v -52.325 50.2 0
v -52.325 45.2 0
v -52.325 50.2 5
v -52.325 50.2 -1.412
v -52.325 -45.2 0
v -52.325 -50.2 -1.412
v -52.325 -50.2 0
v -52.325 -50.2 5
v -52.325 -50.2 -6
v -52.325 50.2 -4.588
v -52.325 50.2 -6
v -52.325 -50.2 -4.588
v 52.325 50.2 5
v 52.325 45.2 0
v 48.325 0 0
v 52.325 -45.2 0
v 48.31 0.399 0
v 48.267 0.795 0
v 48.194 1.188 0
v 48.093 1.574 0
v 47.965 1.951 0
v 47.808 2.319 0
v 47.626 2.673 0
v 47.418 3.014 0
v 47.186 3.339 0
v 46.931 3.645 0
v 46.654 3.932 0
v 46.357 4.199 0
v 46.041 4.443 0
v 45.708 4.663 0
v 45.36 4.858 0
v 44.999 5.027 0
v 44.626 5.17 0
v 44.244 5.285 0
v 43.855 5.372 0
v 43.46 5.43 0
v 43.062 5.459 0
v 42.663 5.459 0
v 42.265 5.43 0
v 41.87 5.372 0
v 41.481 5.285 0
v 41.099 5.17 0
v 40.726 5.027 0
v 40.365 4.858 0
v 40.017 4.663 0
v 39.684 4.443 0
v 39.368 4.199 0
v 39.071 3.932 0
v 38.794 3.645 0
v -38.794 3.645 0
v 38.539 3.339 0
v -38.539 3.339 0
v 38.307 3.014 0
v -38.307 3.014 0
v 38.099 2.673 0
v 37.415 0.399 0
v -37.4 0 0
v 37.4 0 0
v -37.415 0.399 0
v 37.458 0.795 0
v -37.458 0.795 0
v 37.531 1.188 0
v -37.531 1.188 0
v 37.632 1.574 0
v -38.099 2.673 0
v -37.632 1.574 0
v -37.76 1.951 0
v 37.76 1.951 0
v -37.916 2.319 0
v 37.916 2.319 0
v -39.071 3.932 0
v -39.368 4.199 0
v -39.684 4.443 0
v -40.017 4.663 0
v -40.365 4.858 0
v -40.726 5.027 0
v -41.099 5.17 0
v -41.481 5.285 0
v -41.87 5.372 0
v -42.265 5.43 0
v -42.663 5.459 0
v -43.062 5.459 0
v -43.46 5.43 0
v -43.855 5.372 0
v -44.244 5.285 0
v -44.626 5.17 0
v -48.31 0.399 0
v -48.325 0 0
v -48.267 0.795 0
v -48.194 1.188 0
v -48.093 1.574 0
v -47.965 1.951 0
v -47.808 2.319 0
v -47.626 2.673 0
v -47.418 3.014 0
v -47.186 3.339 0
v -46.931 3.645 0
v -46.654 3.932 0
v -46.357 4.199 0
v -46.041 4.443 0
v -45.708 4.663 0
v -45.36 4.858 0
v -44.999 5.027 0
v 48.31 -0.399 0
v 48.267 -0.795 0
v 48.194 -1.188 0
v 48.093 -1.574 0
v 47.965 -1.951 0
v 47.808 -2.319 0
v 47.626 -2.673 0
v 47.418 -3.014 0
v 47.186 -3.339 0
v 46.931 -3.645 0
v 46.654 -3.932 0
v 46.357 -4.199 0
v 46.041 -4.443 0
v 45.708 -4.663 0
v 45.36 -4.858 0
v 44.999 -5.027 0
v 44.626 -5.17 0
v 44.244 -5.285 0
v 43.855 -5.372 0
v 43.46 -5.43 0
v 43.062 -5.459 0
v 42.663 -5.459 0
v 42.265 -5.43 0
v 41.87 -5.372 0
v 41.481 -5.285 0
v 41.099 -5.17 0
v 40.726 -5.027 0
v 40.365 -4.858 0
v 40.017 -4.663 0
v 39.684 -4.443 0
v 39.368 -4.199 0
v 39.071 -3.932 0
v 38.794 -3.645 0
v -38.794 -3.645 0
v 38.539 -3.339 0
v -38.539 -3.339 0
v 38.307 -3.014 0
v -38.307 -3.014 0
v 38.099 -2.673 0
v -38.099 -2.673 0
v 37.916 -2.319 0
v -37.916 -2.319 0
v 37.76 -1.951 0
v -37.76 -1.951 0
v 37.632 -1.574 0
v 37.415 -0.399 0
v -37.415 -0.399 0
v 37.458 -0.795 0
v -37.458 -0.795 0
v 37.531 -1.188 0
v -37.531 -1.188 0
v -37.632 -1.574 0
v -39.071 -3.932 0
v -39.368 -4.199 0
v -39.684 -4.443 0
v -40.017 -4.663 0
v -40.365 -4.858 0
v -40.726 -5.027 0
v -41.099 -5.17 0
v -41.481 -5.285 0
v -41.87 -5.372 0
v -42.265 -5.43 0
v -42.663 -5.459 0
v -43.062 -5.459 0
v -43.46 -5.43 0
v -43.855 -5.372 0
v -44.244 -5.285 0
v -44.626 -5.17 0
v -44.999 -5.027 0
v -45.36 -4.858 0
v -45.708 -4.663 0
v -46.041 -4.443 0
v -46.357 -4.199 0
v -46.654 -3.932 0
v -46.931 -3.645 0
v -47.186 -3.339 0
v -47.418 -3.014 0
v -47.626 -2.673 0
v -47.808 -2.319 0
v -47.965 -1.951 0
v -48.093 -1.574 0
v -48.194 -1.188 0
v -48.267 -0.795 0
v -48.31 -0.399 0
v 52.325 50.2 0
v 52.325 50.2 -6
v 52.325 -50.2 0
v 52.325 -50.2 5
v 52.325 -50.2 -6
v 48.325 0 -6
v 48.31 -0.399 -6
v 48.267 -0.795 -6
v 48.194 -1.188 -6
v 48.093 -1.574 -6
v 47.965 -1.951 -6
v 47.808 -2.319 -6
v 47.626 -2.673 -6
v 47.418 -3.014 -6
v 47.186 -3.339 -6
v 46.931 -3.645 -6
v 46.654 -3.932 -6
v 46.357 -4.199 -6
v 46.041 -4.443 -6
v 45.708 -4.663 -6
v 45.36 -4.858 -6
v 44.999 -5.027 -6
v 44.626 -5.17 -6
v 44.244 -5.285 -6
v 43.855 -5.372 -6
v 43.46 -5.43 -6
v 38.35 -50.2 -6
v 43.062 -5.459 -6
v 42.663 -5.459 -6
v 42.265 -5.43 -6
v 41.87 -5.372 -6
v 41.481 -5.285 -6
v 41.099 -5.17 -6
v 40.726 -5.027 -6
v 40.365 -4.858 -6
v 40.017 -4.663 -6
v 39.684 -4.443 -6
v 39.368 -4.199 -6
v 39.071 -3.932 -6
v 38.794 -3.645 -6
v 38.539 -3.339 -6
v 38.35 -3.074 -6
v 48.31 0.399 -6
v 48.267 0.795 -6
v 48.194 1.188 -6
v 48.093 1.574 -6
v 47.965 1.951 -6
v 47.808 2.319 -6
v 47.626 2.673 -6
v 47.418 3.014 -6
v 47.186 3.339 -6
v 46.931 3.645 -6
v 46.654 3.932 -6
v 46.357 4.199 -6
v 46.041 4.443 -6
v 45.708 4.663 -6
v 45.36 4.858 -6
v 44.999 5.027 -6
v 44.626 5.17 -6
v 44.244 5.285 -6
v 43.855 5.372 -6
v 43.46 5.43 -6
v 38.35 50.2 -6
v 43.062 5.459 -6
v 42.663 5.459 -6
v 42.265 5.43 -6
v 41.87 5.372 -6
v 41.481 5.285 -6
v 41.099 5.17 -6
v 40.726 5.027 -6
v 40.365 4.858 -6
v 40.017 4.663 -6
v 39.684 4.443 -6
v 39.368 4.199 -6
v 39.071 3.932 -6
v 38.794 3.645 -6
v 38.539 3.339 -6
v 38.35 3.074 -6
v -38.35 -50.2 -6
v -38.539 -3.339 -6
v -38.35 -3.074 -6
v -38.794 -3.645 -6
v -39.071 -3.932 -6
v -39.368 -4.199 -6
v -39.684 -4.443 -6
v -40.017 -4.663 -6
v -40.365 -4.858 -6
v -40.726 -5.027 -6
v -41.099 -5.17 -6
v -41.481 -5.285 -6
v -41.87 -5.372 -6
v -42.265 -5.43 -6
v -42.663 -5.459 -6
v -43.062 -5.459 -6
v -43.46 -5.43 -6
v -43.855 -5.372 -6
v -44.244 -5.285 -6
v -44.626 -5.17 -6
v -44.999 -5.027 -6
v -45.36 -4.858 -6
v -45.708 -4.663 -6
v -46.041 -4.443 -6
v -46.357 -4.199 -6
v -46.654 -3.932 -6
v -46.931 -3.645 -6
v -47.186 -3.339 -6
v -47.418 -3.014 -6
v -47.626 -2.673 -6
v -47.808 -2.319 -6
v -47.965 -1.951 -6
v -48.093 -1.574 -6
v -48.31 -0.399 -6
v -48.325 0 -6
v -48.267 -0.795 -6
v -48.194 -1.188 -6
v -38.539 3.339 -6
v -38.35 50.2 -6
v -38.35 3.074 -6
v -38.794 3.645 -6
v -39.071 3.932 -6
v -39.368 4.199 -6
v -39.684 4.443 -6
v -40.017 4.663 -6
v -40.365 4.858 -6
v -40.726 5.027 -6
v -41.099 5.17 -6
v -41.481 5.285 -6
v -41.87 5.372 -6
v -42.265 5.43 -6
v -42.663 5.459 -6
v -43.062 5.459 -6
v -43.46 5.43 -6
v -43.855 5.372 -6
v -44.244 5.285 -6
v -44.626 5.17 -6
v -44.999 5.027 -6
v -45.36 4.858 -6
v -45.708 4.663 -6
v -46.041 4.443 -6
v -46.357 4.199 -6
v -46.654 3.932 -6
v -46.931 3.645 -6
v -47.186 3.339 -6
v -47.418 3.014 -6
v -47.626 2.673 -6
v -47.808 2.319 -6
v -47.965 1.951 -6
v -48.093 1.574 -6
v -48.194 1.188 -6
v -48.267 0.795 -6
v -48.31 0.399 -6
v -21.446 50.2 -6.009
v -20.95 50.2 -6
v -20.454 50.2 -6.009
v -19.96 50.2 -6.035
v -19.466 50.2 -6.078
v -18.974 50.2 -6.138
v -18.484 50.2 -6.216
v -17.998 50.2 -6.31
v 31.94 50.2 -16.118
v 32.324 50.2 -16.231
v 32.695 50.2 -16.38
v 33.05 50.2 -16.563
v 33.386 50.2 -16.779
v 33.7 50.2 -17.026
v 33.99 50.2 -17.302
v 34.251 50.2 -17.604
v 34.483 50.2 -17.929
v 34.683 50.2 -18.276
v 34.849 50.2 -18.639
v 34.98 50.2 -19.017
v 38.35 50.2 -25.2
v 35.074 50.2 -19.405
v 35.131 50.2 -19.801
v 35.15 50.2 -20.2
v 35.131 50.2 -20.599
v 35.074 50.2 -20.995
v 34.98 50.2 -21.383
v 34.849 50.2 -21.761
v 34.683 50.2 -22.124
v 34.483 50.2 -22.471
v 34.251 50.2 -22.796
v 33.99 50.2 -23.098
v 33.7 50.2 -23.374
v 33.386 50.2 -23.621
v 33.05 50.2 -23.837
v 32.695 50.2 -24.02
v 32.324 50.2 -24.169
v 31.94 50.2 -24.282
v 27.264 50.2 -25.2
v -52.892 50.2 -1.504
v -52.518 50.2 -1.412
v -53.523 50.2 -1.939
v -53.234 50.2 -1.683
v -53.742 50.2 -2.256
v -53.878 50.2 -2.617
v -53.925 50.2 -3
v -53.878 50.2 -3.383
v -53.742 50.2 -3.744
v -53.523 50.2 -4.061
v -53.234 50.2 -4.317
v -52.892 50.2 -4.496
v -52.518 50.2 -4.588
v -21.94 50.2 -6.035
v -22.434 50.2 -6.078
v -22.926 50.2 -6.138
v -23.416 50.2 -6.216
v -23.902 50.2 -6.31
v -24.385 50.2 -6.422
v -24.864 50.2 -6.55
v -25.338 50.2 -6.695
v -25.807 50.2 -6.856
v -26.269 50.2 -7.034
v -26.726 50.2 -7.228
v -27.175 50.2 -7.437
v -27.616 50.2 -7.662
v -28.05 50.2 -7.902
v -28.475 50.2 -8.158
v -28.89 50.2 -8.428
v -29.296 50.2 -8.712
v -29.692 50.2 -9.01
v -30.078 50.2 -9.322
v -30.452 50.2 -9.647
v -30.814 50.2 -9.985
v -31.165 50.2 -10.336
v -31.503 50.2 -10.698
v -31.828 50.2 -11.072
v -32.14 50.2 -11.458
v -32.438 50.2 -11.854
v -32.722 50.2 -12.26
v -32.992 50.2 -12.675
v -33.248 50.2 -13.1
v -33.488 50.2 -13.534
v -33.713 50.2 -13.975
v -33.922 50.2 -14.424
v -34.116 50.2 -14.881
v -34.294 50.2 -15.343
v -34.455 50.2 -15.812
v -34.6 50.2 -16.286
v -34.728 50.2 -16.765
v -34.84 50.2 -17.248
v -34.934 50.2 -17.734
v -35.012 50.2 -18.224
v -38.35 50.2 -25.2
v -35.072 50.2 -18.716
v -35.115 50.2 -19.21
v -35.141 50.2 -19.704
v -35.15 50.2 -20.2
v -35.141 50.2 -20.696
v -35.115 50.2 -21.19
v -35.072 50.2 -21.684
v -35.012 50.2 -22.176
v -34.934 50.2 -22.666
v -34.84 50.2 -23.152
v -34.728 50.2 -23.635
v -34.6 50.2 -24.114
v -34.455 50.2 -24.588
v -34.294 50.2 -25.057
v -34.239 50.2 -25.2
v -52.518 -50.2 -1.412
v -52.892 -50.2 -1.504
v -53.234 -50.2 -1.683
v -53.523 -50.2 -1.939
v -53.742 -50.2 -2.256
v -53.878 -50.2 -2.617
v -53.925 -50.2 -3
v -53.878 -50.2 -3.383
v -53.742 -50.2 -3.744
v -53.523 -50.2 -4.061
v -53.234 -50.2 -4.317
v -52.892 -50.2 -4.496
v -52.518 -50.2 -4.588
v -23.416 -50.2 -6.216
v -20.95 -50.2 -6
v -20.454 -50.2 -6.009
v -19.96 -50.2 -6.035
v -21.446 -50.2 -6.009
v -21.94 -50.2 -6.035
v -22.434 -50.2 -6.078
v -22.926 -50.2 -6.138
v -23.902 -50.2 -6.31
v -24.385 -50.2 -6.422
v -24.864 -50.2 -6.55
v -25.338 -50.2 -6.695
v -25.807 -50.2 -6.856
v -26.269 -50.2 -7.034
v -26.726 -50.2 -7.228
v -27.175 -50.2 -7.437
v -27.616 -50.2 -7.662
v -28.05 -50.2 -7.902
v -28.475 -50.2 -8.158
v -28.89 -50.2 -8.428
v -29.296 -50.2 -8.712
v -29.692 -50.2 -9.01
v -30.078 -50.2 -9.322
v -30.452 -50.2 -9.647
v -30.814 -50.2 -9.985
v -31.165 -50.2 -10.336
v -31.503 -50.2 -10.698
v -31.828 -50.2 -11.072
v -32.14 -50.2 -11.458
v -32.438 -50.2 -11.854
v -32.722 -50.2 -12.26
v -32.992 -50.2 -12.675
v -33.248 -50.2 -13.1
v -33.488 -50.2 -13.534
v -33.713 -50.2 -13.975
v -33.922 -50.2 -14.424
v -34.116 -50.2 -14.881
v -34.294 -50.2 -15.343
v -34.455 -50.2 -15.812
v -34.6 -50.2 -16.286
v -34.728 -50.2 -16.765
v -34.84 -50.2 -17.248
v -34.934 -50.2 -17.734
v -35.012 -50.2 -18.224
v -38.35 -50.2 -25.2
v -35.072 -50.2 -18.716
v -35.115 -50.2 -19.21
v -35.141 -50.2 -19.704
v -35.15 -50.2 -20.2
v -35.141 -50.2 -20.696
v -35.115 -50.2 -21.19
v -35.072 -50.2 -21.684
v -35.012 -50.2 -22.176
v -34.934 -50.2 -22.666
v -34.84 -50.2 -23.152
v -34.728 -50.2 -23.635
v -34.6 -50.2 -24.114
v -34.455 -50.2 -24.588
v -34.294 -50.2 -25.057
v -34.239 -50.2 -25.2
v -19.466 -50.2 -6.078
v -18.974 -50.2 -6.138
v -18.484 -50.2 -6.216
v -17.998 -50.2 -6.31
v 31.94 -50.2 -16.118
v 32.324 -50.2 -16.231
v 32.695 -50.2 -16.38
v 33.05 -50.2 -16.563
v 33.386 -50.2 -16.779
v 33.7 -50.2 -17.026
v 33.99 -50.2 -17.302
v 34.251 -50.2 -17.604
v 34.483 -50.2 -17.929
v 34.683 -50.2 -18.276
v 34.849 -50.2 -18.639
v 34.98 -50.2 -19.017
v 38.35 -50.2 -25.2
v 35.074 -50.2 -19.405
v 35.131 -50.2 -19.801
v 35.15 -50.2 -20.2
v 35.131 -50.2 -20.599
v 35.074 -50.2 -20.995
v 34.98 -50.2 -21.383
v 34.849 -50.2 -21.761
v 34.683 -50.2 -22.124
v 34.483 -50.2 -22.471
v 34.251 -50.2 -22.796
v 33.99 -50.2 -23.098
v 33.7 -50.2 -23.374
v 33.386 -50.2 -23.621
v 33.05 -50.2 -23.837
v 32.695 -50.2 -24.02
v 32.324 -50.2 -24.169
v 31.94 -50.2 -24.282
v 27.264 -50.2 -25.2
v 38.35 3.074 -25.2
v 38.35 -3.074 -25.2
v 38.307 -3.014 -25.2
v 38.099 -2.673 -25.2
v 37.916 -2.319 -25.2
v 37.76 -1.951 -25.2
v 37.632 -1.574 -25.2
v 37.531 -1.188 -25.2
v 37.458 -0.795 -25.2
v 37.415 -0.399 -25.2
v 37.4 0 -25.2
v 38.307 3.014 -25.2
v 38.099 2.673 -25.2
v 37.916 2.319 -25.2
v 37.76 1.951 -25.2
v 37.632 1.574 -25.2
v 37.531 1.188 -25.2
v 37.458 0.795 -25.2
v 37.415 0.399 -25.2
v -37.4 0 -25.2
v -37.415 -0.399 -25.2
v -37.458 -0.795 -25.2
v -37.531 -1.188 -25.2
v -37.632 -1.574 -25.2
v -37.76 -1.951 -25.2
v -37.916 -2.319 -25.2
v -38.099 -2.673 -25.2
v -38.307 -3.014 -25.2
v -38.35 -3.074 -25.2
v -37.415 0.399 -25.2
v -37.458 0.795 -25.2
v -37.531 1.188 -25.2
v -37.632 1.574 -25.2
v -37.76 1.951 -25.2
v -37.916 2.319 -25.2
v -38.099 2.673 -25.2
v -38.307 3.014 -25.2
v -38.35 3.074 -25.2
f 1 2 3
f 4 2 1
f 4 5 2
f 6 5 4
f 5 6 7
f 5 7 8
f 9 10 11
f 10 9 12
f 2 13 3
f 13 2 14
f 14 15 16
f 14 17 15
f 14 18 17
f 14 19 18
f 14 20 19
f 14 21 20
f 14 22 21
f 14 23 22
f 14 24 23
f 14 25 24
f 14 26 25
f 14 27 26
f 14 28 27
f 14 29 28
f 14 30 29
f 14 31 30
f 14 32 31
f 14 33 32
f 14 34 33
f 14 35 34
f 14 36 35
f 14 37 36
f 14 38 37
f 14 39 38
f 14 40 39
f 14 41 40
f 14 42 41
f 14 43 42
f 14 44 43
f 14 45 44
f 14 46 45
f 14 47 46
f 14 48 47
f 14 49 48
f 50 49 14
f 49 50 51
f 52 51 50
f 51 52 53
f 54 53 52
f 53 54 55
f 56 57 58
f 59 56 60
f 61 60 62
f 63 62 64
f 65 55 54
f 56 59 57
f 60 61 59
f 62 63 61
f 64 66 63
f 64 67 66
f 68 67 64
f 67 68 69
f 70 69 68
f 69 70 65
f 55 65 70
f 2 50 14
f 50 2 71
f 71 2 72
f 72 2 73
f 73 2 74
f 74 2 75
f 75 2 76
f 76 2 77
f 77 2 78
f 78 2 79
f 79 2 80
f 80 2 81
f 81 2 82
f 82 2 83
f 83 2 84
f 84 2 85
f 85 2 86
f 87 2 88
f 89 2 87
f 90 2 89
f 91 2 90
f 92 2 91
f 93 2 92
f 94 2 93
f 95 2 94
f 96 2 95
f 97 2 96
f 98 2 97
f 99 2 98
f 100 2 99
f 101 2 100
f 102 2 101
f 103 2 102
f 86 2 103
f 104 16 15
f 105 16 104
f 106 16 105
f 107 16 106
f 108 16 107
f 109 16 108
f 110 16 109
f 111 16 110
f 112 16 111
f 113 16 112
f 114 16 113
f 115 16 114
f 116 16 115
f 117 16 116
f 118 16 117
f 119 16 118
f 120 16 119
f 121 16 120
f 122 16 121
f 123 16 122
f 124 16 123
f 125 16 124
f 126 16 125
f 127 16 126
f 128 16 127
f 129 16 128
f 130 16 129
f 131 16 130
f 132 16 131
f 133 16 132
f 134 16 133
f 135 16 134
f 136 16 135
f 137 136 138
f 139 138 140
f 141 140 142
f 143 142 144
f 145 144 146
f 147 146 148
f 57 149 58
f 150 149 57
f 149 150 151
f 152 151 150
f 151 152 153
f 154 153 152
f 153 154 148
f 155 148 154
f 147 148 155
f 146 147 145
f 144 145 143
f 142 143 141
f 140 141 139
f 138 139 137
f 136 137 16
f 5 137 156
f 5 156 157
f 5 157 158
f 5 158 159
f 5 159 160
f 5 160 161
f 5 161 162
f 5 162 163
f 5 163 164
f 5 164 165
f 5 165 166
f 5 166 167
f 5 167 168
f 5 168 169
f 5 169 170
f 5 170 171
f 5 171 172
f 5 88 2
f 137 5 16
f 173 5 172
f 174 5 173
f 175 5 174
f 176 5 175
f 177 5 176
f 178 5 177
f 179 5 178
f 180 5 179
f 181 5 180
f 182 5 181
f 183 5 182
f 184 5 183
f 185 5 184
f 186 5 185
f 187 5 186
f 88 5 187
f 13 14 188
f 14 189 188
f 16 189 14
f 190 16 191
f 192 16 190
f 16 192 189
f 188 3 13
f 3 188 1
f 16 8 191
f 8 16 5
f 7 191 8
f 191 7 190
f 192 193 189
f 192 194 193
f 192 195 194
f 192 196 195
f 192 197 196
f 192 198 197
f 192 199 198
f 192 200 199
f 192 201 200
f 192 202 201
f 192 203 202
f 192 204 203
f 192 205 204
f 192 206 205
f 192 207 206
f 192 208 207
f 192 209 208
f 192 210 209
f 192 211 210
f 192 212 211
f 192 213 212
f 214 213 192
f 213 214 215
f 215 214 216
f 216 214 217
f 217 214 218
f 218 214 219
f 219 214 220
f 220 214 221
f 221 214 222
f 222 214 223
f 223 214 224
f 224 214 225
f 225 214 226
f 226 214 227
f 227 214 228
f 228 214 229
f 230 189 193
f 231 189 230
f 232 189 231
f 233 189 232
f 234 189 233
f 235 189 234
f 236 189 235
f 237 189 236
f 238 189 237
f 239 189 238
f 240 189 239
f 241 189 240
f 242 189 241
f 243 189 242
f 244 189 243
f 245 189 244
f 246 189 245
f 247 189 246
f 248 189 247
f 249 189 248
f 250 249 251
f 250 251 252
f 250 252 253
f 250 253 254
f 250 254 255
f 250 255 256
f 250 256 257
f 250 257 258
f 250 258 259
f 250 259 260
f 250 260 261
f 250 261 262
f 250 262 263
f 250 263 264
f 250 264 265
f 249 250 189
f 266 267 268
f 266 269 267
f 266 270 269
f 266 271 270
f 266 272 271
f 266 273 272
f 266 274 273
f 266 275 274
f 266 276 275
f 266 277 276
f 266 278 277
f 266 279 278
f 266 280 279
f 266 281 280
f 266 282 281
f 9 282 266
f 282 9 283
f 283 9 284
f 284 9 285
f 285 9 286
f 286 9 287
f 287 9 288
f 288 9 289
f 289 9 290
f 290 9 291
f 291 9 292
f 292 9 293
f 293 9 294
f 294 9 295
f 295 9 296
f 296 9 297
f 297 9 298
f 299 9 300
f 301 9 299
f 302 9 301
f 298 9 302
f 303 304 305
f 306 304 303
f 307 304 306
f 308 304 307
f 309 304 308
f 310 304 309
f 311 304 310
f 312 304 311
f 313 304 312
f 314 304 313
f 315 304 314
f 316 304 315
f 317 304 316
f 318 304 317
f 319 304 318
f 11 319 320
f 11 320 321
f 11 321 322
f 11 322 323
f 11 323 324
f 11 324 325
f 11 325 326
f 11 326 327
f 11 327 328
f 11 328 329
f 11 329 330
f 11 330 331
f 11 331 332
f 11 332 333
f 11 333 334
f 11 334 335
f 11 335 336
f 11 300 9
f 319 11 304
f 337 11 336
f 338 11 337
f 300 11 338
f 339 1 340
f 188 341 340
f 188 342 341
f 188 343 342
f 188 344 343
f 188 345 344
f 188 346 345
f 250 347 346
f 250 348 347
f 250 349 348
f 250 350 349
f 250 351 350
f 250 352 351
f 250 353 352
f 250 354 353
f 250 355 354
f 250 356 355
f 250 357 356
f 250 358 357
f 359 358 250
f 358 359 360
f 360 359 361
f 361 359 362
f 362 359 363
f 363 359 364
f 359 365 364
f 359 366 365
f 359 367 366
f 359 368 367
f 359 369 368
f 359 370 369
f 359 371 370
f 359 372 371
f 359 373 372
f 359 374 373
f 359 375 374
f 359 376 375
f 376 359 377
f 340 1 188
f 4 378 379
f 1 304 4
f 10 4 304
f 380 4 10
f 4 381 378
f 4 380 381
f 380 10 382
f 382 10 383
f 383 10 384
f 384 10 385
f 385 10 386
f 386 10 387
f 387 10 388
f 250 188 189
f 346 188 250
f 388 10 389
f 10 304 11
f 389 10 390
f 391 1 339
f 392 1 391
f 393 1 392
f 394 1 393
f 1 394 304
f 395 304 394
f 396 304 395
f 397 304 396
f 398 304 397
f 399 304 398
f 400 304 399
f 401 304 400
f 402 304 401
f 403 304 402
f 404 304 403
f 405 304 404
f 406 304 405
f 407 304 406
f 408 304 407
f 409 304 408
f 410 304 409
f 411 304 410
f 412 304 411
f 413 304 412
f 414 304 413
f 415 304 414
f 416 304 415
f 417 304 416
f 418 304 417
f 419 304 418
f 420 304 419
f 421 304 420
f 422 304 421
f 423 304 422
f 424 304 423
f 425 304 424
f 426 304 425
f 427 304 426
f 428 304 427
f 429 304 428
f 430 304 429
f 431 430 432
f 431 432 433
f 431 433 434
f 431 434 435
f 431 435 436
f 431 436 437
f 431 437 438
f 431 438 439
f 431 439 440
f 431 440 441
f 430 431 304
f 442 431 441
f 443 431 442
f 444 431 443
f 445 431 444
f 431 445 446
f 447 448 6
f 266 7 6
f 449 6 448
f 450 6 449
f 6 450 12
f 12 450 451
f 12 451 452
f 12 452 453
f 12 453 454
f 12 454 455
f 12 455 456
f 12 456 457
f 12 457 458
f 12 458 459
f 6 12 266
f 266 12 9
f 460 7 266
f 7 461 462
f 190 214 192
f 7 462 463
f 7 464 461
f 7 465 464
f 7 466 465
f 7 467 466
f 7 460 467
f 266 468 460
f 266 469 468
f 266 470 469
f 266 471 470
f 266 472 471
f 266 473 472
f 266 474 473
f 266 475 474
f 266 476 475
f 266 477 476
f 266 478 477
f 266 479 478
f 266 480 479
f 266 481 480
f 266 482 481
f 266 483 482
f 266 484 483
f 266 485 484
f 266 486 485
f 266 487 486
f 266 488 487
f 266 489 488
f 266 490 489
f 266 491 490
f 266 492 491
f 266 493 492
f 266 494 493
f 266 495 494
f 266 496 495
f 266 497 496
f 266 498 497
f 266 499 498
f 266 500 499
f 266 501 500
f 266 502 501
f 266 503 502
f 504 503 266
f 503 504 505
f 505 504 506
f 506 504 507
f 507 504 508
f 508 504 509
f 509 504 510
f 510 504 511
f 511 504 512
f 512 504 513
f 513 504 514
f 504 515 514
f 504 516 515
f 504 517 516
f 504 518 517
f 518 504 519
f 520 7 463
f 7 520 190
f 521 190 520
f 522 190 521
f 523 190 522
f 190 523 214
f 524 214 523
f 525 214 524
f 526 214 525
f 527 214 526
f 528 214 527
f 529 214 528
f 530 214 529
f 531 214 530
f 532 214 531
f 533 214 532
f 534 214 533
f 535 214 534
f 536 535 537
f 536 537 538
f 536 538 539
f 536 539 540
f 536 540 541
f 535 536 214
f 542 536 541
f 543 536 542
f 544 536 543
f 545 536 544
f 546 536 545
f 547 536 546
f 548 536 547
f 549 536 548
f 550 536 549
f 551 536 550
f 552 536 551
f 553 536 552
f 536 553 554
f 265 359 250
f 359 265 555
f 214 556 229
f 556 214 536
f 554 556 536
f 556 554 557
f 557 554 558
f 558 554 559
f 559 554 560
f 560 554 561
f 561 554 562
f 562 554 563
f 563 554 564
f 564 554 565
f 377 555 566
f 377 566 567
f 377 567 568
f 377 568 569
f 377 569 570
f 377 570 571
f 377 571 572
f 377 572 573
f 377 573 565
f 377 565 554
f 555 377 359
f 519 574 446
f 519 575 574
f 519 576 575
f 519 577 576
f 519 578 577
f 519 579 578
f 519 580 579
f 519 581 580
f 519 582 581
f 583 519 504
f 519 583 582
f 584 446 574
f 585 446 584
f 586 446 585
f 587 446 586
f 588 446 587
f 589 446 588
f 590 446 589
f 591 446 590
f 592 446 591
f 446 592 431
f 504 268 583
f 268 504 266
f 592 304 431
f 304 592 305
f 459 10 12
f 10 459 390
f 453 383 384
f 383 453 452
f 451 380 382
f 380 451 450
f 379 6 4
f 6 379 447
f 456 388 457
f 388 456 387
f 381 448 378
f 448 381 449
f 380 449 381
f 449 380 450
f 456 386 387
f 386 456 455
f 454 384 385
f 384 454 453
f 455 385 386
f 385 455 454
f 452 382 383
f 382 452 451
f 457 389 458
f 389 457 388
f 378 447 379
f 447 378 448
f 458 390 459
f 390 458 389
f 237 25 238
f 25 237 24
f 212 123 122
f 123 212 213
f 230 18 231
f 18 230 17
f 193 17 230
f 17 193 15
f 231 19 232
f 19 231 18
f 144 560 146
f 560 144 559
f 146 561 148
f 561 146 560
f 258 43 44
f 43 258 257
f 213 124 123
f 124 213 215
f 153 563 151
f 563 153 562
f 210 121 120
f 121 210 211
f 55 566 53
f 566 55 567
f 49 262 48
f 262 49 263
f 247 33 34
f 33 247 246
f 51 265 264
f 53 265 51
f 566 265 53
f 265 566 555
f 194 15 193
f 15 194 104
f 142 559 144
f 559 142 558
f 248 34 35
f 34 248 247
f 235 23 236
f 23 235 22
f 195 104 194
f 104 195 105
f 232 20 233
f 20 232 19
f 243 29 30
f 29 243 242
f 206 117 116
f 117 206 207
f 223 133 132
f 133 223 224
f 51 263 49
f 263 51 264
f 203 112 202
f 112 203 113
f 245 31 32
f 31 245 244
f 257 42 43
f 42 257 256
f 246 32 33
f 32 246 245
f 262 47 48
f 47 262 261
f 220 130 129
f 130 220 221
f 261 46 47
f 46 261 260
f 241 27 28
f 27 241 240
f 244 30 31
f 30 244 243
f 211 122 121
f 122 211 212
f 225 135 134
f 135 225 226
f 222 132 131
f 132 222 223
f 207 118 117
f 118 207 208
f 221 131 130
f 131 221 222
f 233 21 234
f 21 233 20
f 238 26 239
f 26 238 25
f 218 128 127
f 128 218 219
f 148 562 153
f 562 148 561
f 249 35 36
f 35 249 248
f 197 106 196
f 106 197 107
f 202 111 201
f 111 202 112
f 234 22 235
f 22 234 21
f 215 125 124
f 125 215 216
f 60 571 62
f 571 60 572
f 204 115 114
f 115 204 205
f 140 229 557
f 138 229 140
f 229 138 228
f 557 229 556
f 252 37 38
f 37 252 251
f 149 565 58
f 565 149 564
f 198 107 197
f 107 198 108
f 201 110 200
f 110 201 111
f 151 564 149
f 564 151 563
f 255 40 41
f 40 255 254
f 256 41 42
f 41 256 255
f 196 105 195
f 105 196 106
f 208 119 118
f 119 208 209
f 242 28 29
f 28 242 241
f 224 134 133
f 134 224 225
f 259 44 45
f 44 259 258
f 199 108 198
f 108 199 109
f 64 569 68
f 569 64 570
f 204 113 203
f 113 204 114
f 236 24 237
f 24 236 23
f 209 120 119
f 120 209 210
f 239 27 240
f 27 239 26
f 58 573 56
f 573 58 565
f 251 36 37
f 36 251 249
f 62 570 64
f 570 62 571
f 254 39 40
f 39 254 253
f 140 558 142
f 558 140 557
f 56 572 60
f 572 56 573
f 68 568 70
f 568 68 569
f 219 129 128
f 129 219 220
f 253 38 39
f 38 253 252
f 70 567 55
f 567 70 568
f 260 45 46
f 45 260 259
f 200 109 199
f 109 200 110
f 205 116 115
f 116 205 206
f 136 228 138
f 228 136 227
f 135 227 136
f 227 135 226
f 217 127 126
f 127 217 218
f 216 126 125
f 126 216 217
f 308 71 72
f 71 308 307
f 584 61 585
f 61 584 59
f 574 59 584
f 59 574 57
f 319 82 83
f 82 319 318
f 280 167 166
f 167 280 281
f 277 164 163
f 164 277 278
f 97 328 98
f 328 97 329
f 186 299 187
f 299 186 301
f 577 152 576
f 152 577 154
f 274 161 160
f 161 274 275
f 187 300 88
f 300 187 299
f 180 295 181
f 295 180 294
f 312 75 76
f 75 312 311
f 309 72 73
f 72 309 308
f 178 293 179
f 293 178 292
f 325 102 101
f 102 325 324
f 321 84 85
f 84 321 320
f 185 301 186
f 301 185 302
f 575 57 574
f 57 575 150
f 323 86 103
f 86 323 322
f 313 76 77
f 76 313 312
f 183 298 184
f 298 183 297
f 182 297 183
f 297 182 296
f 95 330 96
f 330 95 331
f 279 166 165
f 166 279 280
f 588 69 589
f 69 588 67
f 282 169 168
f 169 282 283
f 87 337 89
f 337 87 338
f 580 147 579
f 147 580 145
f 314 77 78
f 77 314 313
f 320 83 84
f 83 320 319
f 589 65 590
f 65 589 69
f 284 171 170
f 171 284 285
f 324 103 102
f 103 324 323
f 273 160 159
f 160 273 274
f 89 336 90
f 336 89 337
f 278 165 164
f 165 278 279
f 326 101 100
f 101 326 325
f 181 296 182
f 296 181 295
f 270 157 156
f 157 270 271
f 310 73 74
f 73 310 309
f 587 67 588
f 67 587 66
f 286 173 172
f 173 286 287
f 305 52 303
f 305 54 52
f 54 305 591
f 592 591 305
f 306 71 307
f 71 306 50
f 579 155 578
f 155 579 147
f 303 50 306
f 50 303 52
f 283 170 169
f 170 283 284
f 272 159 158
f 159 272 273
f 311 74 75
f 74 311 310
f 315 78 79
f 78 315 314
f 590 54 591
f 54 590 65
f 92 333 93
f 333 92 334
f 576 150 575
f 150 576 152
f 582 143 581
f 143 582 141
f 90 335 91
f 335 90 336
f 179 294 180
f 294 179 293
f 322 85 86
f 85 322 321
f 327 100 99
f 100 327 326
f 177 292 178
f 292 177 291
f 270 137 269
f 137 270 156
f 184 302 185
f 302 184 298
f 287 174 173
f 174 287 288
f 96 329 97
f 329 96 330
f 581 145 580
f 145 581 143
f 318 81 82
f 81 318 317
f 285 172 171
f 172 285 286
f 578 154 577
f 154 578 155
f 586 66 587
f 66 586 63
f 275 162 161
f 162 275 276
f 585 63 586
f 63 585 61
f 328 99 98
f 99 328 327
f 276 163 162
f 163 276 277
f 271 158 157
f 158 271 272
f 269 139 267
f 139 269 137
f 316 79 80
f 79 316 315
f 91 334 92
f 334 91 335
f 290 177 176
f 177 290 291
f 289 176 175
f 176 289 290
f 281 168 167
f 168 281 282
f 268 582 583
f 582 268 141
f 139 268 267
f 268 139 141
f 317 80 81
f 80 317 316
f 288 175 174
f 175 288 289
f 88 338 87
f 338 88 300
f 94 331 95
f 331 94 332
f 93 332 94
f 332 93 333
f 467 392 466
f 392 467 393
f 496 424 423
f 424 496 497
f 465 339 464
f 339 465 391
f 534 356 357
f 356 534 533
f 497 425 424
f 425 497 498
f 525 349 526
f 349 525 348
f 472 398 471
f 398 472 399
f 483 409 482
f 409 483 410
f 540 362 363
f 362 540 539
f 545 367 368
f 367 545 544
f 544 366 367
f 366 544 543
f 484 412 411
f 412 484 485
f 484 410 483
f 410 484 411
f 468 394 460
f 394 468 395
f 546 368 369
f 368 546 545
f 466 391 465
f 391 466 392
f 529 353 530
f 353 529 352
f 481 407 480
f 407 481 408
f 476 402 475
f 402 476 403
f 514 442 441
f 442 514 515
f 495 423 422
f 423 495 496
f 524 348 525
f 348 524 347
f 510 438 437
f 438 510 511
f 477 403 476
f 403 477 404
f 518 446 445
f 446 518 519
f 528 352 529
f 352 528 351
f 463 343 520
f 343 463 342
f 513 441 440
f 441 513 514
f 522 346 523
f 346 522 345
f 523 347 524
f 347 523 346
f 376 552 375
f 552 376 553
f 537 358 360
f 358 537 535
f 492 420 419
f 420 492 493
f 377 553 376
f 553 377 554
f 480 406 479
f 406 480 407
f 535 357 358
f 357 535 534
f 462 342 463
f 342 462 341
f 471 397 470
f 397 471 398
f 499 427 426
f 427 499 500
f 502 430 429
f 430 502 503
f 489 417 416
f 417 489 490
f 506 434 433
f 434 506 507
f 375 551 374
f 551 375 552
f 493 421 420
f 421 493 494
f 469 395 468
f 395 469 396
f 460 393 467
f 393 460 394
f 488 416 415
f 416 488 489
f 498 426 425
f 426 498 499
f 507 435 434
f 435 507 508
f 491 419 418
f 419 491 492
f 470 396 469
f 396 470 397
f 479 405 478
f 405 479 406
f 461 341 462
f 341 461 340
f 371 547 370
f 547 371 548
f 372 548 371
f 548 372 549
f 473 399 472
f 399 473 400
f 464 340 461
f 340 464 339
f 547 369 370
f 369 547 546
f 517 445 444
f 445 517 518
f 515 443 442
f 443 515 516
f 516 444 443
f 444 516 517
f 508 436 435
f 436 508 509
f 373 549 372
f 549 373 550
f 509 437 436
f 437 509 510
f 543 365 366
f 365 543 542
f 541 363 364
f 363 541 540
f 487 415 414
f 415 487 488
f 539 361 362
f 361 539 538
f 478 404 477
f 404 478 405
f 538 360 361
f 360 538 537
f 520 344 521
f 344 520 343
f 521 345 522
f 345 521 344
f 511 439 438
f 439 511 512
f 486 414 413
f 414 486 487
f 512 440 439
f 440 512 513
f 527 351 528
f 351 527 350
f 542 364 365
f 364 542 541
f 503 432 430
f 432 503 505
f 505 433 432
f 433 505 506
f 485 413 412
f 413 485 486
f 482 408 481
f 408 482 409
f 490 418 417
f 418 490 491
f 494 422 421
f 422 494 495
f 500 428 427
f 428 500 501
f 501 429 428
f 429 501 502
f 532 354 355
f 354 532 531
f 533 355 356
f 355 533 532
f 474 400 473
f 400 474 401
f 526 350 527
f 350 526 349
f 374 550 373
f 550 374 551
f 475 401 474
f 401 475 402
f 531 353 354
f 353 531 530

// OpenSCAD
// ---------------------------------------------------------------------------
// corebar_2x4_saddle.scad
//
// Flexible (TPU) parts that clamp a 2x4 laid flat on top of a Yakima CoreBar
// crossbar, using a 3/8" square-bend U-bolt from any hardware store.
//
// The printed parts do not carry the load.  The U-bolt passes under the bar,
// up either side of it, through the saddle and through two holes drilled in
// the 2x4; the steel takes all the tension.  The TPU matches the bar's
// teardrop section to the flat underside of the board, spreads the clamp load
// so the bar is not dented, keeps steel off the bar's coating, grips, and
// damps the vibration that otherwise backs nuts off.
//
// Two parts:
//   saddle - sits on top of the bar, under the board
//   pad    - sits under the bar, inside the bend of the U-bolt
//
// Four of each make a rack: two 2x4s running fore-and-aft over two crossbars.
//
// All dimensions are millimetres.  Print gauge() first and try it on the real
// bar before committing to four full sets.
// ---------------------------------------------------------------------------

/* [What to render] */
part = "saddle";  // [saddle, pad, gauge, assembly]

/* [Crossbar section] */
// Yakima publishes the CoreBar as 2.75 in wide x 1.10 in tall, in their
// "JetFlow" teardrop shape.  MEASURE YOUR BAR and correct these if needed.
bar_w        = 69.9;   // 2.75 in, fore-and-aft
bar_h        = 28.0;   // 1.10 in, vertical, at the thickest point
bar_tail_r   = 4.0;    // radius of the thin trailing edge
bar_teardrop = true;   // false gives a symmetric obround pocket
bar_fit      = 0.4;    // total clearance added to the pocket

/* [Lumber] */
board_w   = 88.9;  // 3.5 in, the real width of a 2x4
board_fit = 1.5;   // slack for paint, swelling and saw-rough edges

/* [U-bolt] */
// Everbilt 810226: 3/8 in square-bend U-bolt, 3 in inside opening, 7 in legs.
rod_d        = 9.525;  // 3/8 in
ubolt_inside = 76.2;   // 3 in
hole_fit     = 1.4;    // clearance on the leg holes

/* [Saddle] */
floor_t = 6.0;   // TPU between the crown of the bar and the board
wall_t  = 3.2;   // skirt wall beside the bar
snap    = 5.0;   // how far the skirt wraps below the bar's widest line
lip_h   = 5.0;   // locating lips that capture the board's width
end_pad = 4.0;   // material beyond the leg holes, fore and aft
bead_r  = 1.6;   // bead on the leading face, so FORWARD is obvious

/* [Pad] */
pad_t    = 4.0;   // TPU between the bar and the bend of the U-bolt
pad_wall = 2.0;   // side walls that keep the pad located on the bar
pad_len  = 60.0;  // length along the bar
pad_gap  = 1.5;   // clearance between pad and saddle

/* [Quality] */
$fa = 2;
$fs = 0.4;

// --- derived ---------------------------------------------------------------
leg_cc   = ubolt_inside + rod_d;            // leg centre-to-centre spacing
hole_d   = rod_d + hole_fit;
cav_w    = bar_w + bar_fit;
cav_h    = bar_h + bar_fit;
skirt_x  = cav_w + 2 * wall_t;              // fore-and-aft footprint of skirt
body_x   = leg_cc + hole_d + 2 * end_pad;   // fore-and-aft footprint of slab
y_in     = (board_w + board_fit) / 2;       // inner face of the locating lips
body_y   = 2 * (y_in + lip_h);              // length along the bar
cav_z    = -floor_t - cav_h / 2;            // centre height of the bar pocket
cav_bot  = cav_z - cav_h / 2;               // lowest point of the bar
skirt_bz = cav_z - snap;                    // bottom of the saddle skirt
pad_top  = skirt_bz - pad_gap;
pad_bot  = cav_bot - pad_t;

// The U-bolt opening is only a few mm wider than the bar, so there is very
// little room for a skirt wall.  The leg holes are cut full depth on purpose:
// they scallop the outside of each wall, which cradles the leg against the bar
// instead of letting it wander.
side_gap = (ubolt_inside - cav_w) / 2;
echo(str("drill the 2x4 at this hole pitch: ", leg_cc, " mm = ",
         leg_cc / 25.4, " in"));
echo(str("clearance per side between bar and U-bolt leg: ", side_gap, " mm"));
echo(str("grip stack (bar + saddle + board + nut): ",
         (bar_h + floor_t + 38.1 + 10) / 25.4, " in of U-bolt leg"));
assert(side_gap > 1.5, "U-bolt opening is too small for this bar section");
assert(pad_top < skirt_bz, "pad and saddle would collide");

// --- geometry --------------------------------------------------------------

// Section of the bar in the fore-and-aft / vertical plane.  The nose (the
// thick, rounded edge) points toward -X, which is the front of the vehicle.
module cavity_2d() {
    nose_r = cav_h / 2;
    tail_r = bar_teardrop ? bar_tail_r + bar_fit / 2 : nose_r;
    hull() {
        translate([-cav_w / 2 + nose_r, 0]) circle(r = nose_r);
        translate([ cav_w / 2 - tail_r, 0]) circle(r = tail_r);
    }
}

// The bar itself, swept along its own axis, positioned where it will sit.
module bar_solid(len = 400, grow = 0) {
    translate([0, len / 2, cav_z])
        rotate([90, 0, 0])
            linear_extrude(height = len)
                offset(r = grow)
                    cavity_2d();
}

// Locating lips.  The inner face is a 45 degree ramp: it guides the board in
// and, printed on end, leaves the part with no overhang anywhere.
module lips() {
    if (lip_h > 0)
    for (s = [0, 1]) mirror([0, s, 0])
        translate([-body_x / 2, 0, 0])
            rotate([0, 90, 0])
                linear_extrude(height = body_x)
                    polygon([[0, y_in], [0, body_y / 2], [-lip_h, body_y / 2]]);
}

// Holes for the U-bolt legs.  Cut full depth, see note above.
module leg_holes() {
    for (s = [1, -1])
        translate([s * leg_cc / 2, 0, 0])
            cylinder(d = hole_d, h = 400, center = true);
}

// A bead down the leading face, so the saddle is easy to orient on the roof.
module front_bead() {
    translate([-body_x / 2, 0, -floor_t / 2])
        rotate([90, 0, 0])
            cylinder(r = bead_r, h = body_y, center = true);
}

module saddle() {
    difference() {
        union() {
            // slab the board sits on
            translate([0, 0, -floor_t / 2])
                cube([body_x, body_y, floor_t], center = true);
            // skirt that wraps the bar; overlaps the slab so the union is clean
            translate([0, 0, skirt_bz / 2])
                cube([skirt_x, body_y, -skirt_bz], center = true);
            lips();
            front_bead();
        }
        bar_solid();
        leg_holes();
    }
}

// Cradle between the underside of the bar and the bend of the U-bolt.
module pad() {
    difference() {
        translate([0, 0, (pad_top + pad_bot) / 2])
            cube([cav_w + 2 * pad_wall, pad_len, pad_top - pad_bot],
                 center = true);
        bar_solid();
    }
}

// A 12 mm slice of the saddle's pocket.  Prints in a few minutes; push it onto
// the bar to check the section before printing four full sets.
module gauge(t = 12) {
    intersection() {
        saddle();
        translate([0, 0, skirt_bz / 2])
            cube([skirt_x + 1, t, -skirt_bz], center = true);
    }
}

module assembly() {
    saddle();
    pad();
    color("dimgray", 0.55) bar_solid(len = 600, grow = -bar_fit / 2);
    color("burlywood", 0.45)
        translate([0, 0, 38.1 / 2]) cube([600, board_w, 38.1], center = true);
}

if      (part == "saddle")   saddle();
else if (part == "pad")      pad();
else if (part == "gauge")    gauge();
else if (part == "assembly") assembly();
